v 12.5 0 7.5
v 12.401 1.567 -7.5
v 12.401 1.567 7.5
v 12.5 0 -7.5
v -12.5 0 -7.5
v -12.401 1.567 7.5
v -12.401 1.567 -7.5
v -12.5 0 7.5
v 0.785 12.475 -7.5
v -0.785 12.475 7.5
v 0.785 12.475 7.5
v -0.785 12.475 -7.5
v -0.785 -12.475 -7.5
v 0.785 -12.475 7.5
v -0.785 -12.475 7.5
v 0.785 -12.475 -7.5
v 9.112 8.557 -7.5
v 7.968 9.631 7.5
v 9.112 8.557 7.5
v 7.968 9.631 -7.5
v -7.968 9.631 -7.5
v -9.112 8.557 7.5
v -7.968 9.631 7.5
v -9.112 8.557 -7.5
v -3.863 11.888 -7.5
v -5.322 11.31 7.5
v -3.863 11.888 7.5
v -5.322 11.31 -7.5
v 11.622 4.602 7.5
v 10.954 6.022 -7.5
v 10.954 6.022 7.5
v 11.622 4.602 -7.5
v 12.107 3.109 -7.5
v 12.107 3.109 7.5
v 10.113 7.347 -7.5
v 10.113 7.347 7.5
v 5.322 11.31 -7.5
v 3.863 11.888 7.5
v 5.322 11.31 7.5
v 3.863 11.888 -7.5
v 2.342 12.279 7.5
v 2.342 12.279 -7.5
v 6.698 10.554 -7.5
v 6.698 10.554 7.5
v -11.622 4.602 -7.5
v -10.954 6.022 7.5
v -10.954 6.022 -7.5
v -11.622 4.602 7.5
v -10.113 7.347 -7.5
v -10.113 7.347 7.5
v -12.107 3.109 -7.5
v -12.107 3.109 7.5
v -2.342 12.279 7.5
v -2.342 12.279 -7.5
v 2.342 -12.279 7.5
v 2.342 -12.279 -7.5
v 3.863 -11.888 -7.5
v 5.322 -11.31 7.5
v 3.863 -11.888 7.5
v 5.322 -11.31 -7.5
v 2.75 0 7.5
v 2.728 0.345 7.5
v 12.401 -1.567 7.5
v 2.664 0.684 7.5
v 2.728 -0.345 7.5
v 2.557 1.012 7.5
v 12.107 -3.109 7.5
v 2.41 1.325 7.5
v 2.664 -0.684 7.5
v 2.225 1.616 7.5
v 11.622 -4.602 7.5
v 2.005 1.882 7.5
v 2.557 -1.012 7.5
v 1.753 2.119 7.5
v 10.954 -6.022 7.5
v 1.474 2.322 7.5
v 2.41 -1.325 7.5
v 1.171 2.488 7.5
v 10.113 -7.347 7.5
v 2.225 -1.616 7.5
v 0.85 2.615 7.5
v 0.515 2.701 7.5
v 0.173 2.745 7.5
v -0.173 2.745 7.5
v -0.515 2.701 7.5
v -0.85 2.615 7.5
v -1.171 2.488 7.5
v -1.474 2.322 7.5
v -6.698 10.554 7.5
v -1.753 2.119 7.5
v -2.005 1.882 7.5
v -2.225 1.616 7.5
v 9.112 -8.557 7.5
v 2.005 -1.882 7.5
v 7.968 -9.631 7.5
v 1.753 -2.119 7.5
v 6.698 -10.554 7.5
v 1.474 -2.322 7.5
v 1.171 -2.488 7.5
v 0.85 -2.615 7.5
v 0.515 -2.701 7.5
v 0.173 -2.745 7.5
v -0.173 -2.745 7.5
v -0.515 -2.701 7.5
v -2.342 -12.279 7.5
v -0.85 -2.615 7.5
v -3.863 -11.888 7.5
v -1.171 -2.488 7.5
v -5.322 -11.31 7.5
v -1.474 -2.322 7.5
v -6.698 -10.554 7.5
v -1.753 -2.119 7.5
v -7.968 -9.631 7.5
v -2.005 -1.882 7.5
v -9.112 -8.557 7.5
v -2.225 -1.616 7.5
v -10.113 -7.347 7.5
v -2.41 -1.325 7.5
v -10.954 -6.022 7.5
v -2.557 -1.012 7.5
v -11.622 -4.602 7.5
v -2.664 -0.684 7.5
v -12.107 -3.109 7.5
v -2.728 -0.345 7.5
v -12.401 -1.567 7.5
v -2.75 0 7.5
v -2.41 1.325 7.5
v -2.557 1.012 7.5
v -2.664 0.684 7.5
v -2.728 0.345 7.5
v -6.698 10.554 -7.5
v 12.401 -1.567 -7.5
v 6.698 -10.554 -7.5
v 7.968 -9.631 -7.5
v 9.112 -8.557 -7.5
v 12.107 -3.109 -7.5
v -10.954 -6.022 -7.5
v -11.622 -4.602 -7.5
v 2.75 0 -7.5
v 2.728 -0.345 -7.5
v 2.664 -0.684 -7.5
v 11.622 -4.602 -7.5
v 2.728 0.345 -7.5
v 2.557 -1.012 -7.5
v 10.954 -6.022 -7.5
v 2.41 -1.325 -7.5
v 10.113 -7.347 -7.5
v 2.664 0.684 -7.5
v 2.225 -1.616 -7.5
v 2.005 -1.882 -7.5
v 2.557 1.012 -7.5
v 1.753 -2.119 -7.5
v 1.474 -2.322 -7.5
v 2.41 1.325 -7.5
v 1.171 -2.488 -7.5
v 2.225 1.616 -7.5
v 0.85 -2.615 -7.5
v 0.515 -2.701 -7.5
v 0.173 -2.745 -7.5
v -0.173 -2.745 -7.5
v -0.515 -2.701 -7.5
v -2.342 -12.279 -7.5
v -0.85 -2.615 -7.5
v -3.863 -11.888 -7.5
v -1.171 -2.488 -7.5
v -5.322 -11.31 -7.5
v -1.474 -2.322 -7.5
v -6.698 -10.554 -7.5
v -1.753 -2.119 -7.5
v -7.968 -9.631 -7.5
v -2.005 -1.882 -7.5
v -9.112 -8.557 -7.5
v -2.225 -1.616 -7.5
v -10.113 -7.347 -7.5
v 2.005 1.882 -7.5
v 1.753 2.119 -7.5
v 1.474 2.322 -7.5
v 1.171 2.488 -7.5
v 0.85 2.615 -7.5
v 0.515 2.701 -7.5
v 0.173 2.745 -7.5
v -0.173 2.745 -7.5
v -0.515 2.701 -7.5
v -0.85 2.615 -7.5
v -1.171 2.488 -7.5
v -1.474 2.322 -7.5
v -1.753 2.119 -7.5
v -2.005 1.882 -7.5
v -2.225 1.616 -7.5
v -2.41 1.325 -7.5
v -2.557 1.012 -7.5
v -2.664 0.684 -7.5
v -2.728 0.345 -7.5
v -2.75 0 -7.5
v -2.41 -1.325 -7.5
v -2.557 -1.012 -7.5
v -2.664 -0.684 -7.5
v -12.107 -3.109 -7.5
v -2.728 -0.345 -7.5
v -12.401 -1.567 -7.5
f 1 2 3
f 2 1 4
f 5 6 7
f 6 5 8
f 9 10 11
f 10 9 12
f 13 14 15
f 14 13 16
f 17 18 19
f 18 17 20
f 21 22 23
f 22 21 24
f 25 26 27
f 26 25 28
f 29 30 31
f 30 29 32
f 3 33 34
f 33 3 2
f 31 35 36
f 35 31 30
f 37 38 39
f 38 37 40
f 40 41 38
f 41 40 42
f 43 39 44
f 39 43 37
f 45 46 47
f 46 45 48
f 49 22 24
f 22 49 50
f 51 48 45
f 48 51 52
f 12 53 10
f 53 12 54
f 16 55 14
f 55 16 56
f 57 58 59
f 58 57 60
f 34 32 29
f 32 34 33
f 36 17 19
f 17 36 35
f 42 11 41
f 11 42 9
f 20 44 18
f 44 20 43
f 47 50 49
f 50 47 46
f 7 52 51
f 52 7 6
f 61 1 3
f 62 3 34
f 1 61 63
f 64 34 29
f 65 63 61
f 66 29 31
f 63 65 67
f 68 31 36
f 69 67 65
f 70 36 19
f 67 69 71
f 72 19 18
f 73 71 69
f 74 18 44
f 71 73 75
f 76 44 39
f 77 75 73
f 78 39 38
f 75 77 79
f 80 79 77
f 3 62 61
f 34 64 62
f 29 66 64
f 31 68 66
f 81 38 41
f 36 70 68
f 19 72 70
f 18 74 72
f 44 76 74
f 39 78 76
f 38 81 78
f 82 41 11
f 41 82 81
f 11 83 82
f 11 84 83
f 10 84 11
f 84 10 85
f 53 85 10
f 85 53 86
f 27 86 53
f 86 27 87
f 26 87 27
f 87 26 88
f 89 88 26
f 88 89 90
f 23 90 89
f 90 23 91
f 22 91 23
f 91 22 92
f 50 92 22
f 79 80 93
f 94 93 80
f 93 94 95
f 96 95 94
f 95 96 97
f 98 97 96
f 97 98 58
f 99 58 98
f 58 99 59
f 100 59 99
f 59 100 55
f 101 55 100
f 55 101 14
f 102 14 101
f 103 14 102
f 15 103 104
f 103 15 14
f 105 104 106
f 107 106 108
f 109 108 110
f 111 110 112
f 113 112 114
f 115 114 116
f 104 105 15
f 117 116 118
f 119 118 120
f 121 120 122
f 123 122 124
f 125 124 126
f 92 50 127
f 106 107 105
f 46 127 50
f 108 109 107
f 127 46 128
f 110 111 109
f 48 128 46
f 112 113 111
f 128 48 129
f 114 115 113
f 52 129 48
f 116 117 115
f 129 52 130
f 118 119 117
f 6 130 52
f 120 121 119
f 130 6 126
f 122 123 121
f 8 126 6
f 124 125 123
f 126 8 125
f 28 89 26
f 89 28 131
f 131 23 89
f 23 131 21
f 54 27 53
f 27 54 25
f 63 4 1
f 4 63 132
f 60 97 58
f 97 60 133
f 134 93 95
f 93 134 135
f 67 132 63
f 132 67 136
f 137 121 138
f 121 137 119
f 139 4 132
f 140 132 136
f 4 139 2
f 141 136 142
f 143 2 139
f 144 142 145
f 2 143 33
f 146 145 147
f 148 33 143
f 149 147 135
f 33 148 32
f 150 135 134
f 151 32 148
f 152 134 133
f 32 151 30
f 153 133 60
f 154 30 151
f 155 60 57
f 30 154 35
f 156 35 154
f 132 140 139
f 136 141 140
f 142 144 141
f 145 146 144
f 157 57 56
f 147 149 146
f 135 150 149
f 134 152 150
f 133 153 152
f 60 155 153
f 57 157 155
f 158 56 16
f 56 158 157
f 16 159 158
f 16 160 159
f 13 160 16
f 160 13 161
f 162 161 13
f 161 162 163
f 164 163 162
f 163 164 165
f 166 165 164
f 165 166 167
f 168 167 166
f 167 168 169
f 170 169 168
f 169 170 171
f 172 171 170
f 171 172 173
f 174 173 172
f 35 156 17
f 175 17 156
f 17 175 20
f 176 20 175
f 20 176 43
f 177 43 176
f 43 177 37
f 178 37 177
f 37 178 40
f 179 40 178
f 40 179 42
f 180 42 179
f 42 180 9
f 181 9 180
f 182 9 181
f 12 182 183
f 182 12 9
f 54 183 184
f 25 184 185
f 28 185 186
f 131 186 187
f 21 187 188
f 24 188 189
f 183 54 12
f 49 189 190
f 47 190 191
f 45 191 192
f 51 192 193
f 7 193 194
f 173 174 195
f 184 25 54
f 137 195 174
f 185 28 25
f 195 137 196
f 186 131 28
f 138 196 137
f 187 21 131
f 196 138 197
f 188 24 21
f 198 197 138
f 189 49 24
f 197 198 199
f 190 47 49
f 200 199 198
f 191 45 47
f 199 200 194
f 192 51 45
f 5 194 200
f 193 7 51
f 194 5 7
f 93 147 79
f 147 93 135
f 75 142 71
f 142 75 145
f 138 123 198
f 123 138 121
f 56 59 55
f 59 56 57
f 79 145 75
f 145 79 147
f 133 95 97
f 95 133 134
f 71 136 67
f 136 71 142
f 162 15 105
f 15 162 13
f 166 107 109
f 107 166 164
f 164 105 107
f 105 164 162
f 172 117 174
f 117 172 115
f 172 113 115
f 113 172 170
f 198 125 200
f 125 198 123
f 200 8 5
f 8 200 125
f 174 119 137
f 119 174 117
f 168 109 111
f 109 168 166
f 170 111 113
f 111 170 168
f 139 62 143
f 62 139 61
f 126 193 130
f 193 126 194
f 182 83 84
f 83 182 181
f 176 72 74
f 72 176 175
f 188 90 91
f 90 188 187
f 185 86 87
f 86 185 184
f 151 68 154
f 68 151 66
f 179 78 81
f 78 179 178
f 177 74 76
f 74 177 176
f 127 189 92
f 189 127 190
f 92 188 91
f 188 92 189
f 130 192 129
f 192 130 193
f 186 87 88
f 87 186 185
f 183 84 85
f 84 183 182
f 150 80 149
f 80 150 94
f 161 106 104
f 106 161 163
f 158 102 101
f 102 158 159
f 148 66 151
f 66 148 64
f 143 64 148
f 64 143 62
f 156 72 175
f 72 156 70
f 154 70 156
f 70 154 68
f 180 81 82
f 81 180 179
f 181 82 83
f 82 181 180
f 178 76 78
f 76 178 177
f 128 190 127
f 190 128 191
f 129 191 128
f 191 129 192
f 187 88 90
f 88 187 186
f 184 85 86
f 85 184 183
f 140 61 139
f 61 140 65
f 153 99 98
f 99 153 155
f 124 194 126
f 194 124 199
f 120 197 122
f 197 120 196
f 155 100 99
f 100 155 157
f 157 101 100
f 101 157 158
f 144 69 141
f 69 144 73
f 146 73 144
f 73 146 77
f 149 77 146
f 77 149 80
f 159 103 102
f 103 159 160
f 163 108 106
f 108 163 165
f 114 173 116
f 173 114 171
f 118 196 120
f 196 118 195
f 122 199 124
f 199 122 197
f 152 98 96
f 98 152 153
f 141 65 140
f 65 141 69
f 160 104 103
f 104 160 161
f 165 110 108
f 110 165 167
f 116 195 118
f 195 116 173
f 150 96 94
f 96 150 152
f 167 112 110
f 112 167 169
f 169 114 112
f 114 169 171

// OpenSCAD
$fn = 50;


difference() {
	union() {
		translate(v = [0, 0, -7.5000000000]) {
			cylinder(h = 15, r = 12.5000000000);
		}
	}
	union() {
		translate(v = [0, 0, -100.0000000000]) {
			cylinder(h = 200, r = 2.7500000000);
		}
	}
}
